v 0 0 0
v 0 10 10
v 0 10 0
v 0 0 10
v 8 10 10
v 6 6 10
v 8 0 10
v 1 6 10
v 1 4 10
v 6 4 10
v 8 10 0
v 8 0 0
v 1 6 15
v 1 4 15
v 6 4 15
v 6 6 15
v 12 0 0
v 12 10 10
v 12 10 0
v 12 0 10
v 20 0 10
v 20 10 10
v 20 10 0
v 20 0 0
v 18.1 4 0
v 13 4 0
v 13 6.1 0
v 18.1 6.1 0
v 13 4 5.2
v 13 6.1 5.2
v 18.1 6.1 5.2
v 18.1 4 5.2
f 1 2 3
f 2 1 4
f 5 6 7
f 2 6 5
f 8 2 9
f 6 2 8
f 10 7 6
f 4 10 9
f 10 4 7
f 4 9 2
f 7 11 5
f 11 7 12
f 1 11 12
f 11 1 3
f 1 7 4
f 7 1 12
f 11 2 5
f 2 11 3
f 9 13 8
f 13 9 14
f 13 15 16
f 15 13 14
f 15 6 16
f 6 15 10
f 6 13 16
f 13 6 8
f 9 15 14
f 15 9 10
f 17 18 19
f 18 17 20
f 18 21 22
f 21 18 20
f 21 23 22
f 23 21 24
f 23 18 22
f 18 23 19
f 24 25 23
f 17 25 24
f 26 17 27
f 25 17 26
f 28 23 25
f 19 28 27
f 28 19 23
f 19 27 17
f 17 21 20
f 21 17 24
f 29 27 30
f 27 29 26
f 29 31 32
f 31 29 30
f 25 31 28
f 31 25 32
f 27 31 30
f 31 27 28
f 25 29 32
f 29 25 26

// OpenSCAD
cube_h = 10;
cube_w = 8;
cube_d = 10;

plug_width = 5;
plug_depth = 2;
plug_height = 5;
tol=0.1;

union(){
    cube([cube_w, cube_d, cube_h], center=false);
    translate([1, 4, cube_h]){
        cube([plug_width, plug_depth, plug_height], center=false);
    }
}


translate([cube_w*1.5, 0, 0]){
difference() {
    cube([cube_w, cube_d, cube_h], center=false);
    translate([1, 4, 0]){
            cube([plug_width+tol, plug_depth+tol, plug_height+2*tol], center=false);
        }
    }
}
